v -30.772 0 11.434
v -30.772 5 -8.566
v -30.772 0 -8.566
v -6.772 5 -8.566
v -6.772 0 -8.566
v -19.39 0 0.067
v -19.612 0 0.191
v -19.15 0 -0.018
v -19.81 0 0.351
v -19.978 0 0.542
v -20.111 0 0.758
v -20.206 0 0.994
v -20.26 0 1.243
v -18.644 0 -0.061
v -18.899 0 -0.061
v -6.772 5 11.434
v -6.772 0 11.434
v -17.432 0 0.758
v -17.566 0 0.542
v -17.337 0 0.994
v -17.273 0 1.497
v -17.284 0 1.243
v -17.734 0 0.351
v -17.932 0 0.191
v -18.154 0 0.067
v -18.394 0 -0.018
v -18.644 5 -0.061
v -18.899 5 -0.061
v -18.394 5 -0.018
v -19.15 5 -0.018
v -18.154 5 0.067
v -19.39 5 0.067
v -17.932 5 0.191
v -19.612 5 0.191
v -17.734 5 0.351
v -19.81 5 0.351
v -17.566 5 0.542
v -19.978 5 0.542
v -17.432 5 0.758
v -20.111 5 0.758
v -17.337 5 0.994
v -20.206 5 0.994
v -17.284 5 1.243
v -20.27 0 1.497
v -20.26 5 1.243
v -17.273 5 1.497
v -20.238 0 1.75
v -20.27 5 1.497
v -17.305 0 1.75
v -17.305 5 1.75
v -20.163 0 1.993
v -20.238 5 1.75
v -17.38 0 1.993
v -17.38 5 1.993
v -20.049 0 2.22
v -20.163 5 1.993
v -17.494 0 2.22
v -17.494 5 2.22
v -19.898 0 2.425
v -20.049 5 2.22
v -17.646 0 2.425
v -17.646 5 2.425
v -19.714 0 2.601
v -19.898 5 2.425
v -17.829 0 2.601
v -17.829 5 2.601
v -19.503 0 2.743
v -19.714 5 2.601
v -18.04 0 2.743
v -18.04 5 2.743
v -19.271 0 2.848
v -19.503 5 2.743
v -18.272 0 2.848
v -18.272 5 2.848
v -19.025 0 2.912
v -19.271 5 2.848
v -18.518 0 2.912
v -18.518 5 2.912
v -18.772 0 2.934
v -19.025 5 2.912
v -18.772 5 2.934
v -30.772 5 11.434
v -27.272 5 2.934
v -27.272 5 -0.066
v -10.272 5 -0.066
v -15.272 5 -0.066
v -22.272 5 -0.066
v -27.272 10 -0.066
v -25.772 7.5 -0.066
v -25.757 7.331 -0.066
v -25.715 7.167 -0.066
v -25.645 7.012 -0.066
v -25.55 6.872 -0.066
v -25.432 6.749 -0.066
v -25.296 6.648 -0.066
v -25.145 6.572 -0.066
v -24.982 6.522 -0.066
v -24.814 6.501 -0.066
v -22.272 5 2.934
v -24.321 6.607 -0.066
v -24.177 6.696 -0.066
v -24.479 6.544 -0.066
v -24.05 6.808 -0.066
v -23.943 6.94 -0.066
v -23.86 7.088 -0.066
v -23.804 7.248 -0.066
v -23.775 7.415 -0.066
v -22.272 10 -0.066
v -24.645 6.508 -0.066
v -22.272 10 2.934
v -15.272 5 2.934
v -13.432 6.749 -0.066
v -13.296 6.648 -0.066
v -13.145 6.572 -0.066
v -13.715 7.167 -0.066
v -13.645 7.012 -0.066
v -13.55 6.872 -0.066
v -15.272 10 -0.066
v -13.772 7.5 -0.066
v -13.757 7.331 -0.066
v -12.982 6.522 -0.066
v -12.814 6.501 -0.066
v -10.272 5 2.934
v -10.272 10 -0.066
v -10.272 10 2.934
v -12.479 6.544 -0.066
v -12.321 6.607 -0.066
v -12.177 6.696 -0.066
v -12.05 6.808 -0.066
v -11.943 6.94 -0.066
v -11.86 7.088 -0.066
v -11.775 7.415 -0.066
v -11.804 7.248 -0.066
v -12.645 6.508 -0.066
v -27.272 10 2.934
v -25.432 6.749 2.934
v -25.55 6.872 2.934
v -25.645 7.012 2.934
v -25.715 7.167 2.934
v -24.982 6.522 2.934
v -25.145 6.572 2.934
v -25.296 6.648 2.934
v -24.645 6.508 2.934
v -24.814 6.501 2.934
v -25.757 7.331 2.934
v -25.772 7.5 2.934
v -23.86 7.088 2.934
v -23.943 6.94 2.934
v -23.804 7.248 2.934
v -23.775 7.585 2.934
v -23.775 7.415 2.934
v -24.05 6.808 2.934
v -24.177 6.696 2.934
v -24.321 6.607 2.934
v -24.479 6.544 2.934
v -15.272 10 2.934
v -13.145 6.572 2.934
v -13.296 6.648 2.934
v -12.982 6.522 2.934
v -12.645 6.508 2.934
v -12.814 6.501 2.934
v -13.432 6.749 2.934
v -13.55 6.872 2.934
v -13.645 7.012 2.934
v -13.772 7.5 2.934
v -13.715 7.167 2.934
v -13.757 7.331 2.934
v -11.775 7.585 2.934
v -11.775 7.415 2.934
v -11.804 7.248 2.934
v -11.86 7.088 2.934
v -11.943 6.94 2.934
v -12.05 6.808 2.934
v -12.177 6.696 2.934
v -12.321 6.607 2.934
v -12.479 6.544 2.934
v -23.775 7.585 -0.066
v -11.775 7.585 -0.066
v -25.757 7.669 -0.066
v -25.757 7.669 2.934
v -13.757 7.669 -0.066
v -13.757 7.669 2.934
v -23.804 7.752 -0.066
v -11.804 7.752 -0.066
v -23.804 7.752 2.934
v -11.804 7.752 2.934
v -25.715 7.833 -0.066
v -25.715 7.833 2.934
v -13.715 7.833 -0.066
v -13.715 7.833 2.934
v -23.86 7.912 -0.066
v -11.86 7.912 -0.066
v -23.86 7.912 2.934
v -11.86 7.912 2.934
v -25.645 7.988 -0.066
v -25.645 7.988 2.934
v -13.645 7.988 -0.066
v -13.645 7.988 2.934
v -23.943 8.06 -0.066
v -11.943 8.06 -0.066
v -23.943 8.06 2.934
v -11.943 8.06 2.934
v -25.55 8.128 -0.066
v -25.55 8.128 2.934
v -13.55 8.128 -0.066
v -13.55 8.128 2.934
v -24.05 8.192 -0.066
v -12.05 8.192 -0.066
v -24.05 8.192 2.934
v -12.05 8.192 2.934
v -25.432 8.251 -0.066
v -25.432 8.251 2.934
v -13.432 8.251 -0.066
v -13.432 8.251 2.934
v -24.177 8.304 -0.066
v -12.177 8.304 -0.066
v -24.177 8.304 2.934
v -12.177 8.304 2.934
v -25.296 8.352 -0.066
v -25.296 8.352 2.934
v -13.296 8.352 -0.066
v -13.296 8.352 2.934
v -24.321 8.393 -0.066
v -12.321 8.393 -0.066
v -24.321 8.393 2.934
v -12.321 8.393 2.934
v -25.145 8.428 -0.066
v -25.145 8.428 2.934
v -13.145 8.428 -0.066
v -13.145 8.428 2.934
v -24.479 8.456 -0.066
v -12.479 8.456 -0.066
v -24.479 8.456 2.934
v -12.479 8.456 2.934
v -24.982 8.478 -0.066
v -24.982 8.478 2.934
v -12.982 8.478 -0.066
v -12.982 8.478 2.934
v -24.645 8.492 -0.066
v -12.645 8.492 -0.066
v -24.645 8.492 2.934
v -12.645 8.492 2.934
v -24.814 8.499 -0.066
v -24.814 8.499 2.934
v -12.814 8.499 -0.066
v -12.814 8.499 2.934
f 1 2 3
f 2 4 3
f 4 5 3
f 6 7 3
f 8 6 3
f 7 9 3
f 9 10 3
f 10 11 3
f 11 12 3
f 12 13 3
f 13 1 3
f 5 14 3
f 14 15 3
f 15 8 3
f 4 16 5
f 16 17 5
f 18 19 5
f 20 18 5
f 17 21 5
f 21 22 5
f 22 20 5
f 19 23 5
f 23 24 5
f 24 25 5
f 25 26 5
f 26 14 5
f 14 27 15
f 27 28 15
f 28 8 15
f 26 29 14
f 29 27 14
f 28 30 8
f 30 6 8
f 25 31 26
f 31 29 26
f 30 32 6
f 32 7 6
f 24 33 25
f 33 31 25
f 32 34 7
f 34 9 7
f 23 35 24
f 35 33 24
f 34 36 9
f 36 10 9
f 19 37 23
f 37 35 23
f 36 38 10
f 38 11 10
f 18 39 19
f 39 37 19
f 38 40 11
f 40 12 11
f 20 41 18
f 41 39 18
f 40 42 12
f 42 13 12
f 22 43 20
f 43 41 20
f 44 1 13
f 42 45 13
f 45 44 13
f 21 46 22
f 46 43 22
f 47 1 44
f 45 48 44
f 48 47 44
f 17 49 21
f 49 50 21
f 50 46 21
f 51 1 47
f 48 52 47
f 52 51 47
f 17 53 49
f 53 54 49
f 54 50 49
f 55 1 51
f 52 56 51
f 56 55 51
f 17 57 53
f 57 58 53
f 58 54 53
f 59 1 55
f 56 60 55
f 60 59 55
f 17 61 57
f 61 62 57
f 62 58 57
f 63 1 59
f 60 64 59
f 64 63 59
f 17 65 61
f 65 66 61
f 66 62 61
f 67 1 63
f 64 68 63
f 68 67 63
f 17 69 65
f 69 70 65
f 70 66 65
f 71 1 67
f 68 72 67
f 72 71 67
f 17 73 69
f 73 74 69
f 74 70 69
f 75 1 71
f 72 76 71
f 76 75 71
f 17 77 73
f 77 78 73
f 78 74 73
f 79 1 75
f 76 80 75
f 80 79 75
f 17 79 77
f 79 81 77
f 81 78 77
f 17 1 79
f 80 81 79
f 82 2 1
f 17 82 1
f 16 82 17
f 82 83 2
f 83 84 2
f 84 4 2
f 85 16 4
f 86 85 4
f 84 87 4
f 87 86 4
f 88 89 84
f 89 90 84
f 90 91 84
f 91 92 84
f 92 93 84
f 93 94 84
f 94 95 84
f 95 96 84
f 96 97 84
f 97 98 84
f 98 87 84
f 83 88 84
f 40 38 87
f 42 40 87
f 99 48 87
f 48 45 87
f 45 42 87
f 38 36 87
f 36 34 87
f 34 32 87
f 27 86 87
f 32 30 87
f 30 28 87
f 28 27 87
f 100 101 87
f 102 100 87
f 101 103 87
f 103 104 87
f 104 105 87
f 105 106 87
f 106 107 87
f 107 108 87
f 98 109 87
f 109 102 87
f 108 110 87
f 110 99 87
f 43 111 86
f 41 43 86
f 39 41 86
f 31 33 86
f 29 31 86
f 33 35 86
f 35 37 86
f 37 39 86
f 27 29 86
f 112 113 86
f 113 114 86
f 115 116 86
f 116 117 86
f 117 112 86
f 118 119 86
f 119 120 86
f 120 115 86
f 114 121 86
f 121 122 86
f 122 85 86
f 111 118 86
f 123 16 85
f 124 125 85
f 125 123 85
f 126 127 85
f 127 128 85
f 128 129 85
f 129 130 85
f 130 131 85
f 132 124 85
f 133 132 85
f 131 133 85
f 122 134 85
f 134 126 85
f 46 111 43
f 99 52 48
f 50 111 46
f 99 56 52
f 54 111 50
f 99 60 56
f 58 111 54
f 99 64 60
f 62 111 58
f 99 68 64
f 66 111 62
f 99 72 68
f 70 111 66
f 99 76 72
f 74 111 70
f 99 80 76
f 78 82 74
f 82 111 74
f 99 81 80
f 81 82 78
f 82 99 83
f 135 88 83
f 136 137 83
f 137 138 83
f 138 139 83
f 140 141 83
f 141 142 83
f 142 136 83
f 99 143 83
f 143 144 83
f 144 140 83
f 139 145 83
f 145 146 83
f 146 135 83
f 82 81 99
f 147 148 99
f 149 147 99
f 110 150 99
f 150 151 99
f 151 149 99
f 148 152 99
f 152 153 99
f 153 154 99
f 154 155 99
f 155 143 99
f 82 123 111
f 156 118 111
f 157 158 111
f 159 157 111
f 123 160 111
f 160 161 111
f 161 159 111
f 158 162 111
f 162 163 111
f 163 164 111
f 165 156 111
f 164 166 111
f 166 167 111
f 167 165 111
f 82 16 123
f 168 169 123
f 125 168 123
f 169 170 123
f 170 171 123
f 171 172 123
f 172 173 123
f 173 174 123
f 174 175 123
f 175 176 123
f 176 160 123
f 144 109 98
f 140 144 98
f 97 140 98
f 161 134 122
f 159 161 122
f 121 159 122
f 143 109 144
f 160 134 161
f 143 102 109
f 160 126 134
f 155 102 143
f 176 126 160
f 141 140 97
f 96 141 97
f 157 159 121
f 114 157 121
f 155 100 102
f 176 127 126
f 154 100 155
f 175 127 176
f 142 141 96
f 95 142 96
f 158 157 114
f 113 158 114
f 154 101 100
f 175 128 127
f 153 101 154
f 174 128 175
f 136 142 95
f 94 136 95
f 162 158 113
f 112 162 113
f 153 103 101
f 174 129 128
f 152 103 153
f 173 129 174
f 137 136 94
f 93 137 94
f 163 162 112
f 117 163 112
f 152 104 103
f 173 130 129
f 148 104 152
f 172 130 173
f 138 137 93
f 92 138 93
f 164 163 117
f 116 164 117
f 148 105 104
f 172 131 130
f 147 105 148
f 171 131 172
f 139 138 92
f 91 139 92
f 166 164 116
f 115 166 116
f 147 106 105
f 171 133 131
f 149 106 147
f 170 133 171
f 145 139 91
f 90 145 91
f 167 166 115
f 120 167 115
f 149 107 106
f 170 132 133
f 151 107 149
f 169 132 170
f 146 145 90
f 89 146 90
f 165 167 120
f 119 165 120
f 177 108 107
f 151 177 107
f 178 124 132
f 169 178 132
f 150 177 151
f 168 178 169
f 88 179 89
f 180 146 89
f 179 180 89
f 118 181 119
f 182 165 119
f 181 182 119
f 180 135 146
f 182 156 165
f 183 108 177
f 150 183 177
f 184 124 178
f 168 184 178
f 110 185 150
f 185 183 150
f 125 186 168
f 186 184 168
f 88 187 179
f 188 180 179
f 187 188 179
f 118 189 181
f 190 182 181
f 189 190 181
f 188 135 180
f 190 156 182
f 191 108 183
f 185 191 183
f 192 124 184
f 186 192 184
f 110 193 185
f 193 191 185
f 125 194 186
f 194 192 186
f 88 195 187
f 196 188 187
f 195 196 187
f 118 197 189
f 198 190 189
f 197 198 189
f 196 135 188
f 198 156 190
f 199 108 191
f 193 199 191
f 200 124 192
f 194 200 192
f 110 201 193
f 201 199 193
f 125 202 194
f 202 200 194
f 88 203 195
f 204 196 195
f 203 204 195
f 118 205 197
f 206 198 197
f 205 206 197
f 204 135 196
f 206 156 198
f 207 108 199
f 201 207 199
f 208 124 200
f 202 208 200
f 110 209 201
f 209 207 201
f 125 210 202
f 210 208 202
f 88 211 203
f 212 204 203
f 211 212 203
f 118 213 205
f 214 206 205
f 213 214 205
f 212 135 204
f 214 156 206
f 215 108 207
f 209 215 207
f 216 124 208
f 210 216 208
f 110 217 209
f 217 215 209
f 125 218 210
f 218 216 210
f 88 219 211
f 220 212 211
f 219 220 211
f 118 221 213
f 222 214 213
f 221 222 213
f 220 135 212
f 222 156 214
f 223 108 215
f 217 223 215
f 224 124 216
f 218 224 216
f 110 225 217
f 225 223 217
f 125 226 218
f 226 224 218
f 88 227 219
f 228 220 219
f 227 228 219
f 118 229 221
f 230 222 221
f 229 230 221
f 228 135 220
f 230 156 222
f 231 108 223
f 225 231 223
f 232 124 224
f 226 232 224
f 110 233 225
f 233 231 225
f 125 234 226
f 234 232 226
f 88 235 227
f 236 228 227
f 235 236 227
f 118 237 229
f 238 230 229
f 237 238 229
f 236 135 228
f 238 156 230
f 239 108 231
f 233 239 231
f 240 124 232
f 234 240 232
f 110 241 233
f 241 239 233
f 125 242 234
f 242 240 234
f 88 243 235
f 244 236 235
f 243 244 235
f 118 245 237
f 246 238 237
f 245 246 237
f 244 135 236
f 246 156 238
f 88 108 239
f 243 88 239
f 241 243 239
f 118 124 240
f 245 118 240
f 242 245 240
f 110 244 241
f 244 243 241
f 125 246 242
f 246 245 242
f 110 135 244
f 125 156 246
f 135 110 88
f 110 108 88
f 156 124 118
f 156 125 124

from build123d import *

# Parameters (mm, degrees)
SKETCH2_W           = 24
SKETCH2_H           = 20
BOSS_EXTRUDE1_DEPTH = 5
SKETCH3_W           = 5
SKETCH3_H           = 3
BOSS_EXTRUDE2_DEPTH = 5
SKETCH5_R           = 1
CUT_EXTRUDE2_DEPTH  = 3
SKETCH6_R           = 1
CUT_EXTRUDE3_DEPTH  = 3
SKETCH7_R           = 1.5
CUT_EXTRUDE4_DEPTH  = 5


with BuildPart() as part:
    # Sketch2 → Boss-Extrude1 (new body)
    with BuildSketch(Plane(origin=(0, 0, 0), x_dir=(1, 0, 0), z_dir=(0, 1, 0))):
        with Locations((-18.771651872, -1.433503677)):
            Rectangle(SKETCH2_W, SKETCH2_H)
    extrude(amount=BOSS_EXTRUDE1_DEPTH)

    # Sketch3 → Boss-Extrude2 (add)
    with BuildSketch(Plane(origin=(0, 5, 0), x_dir=(1, 0, 0), z_dir=(0, 1, 0))):
        with Locations((-12.771651872, -1.433503677)):
            Rectangle(SKETCH3_W, SKETCH3_H)
        with Locations((-24.771651872, -1.433503677)):
            Rectangle(SKETCH3_W, SKETCH3_H)
    extrude(amount=BOSS_EXTRUDE2_DEPTH)

    # Sketch5 → Cut-Extrude2 (cut)
    with BuildSketch(Plane(origin=(0, 0, -0.066496323), x_dir=(-1, 0, 0), z_dir=(0, 0, -1))):
        with Locations((12.771651872, 7.5)):
            Circle(SKETCH5_R)
    extrude(amount=-CUT_EXTRUDE2_DEPTH, mode=Mode.SUBTRACT)

    # Sketch6 → Cut-Extrude3 (cut)
    with BuildSketch(Plane(origin=(0, 0, -0.066496323), x_dir=(-1, 0, 0), z_dir=(0, 0, -1))):
        with Locations((24.771651872, 7.5)):
            Circle(SKETCH6_R)
    extrude(amount=-CUT_EXTRUDE3_DEPTH, mode=Mode.SUBTRACT)

    # Sketch7 → Cut-Extrude4 (cut)
    with BuildSketch(Plane(origin=(0, 5, 0), x_dir=(1, 0, 0), z_dir=(0, 1, 0))):
        with Locations((-18.771651872, -1.433503677)):
            Circle(SKETCH7_R)
    extrude(amount=-CUT_EXTRUDE4_DEPTH, mode=Mode.SUBTRACT)


solid = part.part
